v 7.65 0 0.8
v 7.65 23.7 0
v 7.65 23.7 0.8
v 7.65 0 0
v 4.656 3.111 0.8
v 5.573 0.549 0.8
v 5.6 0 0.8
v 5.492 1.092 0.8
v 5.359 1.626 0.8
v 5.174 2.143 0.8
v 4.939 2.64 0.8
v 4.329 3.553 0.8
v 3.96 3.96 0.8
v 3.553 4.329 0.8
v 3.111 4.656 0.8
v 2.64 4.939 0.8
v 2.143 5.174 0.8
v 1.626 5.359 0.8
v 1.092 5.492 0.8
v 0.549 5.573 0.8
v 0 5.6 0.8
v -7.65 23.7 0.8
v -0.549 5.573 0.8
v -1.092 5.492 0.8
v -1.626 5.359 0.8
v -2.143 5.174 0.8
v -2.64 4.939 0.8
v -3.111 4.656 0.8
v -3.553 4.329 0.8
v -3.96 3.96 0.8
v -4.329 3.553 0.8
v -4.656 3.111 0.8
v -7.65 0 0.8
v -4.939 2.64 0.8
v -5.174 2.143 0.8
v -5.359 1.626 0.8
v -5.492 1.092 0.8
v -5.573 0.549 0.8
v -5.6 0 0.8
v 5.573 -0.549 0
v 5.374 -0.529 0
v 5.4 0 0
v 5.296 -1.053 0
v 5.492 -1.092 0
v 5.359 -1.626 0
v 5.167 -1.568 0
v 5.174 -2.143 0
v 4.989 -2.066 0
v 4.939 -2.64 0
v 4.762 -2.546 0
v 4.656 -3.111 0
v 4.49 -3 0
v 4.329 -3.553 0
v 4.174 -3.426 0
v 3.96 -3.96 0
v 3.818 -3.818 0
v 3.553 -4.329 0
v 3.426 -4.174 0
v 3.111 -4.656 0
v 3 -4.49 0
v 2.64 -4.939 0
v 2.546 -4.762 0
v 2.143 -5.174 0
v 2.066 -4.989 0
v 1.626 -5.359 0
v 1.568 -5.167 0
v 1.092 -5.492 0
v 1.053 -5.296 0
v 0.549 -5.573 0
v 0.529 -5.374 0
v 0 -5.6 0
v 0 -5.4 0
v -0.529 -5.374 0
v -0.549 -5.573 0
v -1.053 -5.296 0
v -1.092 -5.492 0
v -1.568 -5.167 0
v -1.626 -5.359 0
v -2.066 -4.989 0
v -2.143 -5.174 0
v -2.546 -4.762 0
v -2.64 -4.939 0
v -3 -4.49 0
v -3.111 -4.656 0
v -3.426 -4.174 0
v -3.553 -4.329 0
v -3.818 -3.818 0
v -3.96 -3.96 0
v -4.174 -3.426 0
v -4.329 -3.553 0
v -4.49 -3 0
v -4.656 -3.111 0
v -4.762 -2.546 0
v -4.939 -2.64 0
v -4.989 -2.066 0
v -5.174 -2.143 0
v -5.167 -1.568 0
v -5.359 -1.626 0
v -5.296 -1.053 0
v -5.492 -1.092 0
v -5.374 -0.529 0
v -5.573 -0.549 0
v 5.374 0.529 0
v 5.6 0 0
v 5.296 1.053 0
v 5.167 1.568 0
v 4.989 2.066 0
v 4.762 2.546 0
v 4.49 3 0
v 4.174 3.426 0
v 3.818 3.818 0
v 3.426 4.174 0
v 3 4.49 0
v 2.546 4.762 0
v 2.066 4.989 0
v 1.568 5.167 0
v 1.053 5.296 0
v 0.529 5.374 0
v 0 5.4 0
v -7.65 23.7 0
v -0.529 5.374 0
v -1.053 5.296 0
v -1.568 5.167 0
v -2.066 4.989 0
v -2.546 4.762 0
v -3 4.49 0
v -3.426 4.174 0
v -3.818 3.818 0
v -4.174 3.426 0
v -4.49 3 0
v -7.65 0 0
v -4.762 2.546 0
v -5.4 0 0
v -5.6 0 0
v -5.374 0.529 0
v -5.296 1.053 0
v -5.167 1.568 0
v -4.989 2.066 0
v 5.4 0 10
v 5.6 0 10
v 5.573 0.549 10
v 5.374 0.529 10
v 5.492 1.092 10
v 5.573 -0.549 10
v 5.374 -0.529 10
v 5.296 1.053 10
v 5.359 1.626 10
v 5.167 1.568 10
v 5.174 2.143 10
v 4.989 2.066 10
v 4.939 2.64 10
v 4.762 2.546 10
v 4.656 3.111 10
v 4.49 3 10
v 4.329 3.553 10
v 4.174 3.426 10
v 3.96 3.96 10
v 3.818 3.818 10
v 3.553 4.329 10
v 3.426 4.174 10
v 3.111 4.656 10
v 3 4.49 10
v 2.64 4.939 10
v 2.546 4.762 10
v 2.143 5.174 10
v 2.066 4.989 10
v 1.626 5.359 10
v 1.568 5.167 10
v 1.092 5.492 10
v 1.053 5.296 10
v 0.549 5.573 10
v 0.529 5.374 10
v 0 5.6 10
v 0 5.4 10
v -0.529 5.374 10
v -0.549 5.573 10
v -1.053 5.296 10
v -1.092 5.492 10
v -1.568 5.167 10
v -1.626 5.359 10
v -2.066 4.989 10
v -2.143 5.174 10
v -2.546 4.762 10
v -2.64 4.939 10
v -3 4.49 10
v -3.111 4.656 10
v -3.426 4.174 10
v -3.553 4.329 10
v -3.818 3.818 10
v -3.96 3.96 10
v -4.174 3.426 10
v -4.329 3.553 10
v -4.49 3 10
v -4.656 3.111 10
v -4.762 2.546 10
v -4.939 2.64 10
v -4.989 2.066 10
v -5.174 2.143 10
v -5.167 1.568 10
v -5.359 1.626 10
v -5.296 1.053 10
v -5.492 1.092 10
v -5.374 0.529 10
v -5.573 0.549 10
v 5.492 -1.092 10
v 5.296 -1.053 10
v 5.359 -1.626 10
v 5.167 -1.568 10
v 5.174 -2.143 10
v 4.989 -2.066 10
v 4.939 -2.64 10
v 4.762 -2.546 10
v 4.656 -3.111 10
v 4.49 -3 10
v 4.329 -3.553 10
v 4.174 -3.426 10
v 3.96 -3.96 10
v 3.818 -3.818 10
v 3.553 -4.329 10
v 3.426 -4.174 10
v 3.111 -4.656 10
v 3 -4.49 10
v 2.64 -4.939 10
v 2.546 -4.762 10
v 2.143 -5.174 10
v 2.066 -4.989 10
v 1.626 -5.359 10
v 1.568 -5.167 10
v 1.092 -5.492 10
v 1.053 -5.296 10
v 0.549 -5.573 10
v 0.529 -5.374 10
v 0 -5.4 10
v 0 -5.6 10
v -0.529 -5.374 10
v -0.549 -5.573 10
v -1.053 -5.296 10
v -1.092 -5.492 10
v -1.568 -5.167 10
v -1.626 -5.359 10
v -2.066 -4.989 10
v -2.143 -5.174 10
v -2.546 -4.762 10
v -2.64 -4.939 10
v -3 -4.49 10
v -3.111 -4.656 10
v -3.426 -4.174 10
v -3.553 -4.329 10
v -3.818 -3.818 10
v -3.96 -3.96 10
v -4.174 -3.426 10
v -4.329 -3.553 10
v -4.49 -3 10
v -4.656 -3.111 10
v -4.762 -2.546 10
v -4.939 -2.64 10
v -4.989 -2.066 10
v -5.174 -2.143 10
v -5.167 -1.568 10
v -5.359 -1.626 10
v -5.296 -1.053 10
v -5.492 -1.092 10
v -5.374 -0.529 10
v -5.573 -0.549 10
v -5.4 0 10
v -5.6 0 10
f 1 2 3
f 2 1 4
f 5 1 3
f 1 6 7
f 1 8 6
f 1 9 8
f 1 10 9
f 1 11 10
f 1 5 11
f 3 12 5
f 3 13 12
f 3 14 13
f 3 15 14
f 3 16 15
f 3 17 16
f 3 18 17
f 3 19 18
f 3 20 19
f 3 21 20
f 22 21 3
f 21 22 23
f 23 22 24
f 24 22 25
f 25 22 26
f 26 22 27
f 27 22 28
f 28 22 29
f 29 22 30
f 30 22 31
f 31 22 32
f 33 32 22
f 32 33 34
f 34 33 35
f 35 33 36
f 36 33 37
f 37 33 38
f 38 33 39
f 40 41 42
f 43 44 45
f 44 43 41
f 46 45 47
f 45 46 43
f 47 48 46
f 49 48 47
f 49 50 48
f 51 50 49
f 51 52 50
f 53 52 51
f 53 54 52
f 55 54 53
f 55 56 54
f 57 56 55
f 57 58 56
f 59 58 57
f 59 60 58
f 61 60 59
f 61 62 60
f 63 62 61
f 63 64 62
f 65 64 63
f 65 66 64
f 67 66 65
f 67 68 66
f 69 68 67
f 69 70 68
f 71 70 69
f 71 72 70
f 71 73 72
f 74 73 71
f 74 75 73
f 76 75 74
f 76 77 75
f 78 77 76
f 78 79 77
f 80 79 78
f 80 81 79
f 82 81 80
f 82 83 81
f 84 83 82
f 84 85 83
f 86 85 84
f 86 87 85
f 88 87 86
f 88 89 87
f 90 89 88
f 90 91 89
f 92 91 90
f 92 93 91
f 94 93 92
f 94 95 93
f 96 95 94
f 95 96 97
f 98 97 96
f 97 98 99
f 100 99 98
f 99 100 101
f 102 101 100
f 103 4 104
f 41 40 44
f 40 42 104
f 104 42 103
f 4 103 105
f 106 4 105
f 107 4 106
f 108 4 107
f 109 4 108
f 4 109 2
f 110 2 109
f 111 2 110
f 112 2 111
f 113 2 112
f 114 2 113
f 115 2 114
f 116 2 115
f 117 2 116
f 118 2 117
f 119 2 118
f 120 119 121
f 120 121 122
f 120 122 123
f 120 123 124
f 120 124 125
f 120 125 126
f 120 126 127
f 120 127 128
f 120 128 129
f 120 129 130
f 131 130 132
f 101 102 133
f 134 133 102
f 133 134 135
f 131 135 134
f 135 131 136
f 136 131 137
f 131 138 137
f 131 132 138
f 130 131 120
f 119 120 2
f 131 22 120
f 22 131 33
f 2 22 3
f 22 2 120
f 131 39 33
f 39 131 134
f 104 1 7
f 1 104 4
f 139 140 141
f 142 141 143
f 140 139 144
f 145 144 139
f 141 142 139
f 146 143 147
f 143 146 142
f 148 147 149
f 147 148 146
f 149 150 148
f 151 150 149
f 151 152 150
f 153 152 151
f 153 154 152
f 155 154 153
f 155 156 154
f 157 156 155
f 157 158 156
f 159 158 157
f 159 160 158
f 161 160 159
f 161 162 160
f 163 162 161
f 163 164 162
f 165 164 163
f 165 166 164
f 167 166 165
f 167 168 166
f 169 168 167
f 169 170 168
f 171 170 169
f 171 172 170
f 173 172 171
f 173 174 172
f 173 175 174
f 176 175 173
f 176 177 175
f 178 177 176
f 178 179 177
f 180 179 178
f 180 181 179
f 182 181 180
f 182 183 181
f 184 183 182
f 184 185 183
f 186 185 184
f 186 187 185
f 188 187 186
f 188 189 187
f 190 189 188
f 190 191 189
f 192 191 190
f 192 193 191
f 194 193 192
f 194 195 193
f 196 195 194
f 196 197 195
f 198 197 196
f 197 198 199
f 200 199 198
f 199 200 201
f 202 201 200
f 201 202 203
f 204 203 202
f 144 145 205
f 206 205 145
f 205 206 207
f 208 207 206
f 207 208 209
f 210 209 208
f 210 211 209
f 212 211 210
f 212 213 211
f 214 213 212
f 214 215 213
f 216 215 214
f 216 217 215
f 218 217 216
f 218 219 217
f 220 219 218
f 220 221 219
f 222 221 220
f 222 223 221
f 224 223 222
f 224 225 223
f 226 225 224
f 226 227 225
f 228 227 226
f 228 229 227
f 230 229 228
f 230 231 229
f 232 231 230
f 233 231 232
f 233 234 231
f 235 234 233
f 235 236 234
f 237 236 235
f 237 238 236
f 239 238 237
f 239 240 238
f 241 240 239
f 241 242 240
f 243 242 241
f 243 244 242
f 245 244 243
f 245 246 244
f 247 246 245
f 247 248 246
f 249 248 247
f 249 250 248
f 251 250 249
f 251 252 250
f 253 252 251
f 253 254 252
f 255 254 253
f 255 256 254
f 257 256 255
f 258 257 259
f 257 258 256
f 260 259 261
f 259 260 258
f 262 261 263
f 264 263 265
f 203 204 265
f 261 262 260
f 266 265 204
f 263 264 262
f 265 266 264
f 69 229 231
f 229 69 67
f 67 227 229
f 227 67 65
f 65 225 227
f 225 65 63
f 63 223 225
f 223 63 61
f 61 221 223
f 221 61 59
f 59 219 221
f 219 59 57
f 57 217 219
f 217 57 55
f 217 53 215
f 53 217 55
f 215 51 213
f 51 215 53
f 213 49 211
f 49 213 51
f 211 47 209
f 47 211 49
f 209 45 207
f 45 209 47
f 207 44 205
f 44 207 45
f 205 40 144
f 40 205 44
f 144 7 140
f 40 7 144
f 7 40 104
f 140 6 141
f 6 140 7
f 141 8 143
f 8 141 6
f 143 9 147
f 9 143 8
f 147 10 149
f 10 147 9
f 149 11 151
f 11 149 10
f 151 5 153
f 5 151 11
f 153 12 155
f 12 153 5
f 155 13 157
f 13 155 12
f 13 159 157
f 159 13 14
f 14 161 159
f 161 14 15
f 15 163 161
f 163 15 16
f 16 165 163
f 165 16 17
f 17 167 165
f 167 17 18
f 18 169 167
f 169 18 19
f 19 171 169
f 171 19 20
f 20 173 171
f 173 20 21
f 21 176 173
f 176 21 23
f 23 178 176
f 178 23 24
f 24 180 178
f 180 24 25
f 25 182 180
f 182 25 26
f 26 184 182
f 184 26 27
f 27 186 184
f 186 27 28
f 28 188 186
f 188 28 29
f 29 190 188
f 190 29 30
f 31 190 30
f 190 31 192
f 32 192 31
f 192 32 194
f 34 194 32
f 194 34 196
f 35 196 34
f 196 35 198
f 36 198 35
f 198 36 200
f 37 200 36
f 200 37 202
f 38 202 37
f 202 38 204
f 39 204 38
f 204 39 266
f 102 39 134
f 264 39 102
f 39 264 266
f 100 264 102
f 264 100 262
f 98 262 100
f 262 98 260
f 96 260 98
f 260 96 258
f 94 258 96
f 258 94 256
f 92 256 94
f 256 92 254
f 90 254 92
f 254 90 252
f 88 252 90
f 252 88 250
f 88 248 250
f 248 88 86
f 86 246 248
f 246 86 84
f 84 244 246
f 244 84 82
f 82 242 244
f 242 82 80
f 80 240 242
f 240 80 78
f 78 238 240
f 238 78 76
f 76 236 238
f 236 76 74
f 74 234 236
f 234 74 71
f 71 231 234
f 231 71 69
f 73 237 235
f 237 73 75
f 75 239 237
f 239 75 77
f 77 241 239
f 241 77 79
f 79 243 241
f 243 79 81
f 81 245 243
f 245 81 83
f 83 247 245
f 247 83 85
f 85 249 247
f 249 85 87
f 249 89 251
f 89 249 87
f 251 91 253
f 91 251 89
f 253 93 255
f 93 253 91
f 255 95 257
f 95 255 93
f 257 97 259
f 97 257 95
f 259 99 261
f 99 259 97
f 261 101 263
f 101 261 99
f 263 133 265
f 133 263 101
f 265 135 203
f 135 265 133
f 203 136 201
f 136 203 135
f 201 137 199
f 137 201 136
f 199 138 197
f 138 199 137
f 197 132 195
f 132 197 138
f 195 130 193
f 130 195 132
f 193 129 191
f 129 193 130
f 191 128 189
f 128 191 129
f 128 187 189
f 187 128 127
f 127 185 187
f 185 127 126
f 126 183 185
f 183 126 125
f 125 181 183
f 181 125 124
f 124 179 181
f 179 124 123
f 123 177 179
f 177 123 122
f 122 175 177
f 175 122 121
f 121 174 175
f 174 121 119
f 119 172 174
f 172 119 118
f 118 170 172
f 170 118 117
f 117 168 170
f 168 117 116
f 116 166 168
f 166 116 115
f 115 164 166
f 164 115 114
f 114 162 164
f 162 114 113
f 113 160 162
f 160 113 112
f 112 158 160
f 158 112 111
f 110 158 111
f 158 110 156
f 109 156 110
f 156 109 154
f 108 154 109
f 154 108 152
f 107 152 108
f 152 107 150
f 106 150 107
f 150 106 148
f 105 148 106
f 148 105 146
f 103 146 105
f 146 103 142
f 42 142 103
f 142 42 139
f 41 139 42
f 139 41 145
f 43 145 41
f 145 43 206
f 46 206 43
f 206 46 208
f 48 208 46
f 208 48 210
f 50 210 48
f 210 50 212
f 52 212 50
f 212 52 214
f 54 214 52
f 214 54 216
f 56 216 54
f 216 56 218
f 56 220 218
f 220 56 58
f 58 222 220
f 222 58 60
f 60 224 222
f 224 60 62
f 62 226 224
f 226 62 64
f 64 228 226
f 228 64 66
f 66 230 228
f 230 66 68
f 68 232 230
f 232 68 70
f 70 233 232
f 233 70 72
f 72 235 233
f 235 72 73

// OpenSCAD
// file: mass-driver-parts.scad
$fn = 64;

nozzle_diameter = 0.4;

// outer diameter of the tube we're using.
tube_diameter = 10.0;

// Tolerances to add to an inner diameter so it fits over
tight_fit = 0.2;
loose_fit = 0.4;

epsilon = 0.01;

module tube(inner_diameter, outer_diameter, length){
    linear_extrude(length){
        difference(){
            circle(d = outer_diameter);
            circle(d = inner_diameter);
        }
    }
}

module loose_tube(length) {
    outer_diameter = tube_diameter + nozzle_diameter + loose_fit;
    
    tube(outer_diameter, outer_diameter + nozzle_diameter, length);
}

module base(inner_diameter, outer_diameter, thickness) {
    difference() {
        cylinder(d = outer_diameter, h = thickness);
        translate([0, 0, -epsilon])
        cylinder(d = inner_diameter, h = thickness + epsilon * 2);
    }
}
// main file
include <./mass-driver-parts.scad>;

hall_sensor_length = 18.7;
hall_sensor_width = 15.3;

module table(thickness) {
    length = hall_sensor_length + (tube_diameter / 2);
    translate([0, length / 2, thickness / 2])
    cube([hall_sensor_width, length, thickness], center = true);
}

module hall_sensor_mount() {
    loose_tube(10);
    
    difference(){
        table(0.8);
        translate([0, 0, -epsilon])
        cylinder(h=1, r=(tube_diameter + nozzle_diameter + loose_fit) / 2);
    }
}

hall_sensor_mount();
